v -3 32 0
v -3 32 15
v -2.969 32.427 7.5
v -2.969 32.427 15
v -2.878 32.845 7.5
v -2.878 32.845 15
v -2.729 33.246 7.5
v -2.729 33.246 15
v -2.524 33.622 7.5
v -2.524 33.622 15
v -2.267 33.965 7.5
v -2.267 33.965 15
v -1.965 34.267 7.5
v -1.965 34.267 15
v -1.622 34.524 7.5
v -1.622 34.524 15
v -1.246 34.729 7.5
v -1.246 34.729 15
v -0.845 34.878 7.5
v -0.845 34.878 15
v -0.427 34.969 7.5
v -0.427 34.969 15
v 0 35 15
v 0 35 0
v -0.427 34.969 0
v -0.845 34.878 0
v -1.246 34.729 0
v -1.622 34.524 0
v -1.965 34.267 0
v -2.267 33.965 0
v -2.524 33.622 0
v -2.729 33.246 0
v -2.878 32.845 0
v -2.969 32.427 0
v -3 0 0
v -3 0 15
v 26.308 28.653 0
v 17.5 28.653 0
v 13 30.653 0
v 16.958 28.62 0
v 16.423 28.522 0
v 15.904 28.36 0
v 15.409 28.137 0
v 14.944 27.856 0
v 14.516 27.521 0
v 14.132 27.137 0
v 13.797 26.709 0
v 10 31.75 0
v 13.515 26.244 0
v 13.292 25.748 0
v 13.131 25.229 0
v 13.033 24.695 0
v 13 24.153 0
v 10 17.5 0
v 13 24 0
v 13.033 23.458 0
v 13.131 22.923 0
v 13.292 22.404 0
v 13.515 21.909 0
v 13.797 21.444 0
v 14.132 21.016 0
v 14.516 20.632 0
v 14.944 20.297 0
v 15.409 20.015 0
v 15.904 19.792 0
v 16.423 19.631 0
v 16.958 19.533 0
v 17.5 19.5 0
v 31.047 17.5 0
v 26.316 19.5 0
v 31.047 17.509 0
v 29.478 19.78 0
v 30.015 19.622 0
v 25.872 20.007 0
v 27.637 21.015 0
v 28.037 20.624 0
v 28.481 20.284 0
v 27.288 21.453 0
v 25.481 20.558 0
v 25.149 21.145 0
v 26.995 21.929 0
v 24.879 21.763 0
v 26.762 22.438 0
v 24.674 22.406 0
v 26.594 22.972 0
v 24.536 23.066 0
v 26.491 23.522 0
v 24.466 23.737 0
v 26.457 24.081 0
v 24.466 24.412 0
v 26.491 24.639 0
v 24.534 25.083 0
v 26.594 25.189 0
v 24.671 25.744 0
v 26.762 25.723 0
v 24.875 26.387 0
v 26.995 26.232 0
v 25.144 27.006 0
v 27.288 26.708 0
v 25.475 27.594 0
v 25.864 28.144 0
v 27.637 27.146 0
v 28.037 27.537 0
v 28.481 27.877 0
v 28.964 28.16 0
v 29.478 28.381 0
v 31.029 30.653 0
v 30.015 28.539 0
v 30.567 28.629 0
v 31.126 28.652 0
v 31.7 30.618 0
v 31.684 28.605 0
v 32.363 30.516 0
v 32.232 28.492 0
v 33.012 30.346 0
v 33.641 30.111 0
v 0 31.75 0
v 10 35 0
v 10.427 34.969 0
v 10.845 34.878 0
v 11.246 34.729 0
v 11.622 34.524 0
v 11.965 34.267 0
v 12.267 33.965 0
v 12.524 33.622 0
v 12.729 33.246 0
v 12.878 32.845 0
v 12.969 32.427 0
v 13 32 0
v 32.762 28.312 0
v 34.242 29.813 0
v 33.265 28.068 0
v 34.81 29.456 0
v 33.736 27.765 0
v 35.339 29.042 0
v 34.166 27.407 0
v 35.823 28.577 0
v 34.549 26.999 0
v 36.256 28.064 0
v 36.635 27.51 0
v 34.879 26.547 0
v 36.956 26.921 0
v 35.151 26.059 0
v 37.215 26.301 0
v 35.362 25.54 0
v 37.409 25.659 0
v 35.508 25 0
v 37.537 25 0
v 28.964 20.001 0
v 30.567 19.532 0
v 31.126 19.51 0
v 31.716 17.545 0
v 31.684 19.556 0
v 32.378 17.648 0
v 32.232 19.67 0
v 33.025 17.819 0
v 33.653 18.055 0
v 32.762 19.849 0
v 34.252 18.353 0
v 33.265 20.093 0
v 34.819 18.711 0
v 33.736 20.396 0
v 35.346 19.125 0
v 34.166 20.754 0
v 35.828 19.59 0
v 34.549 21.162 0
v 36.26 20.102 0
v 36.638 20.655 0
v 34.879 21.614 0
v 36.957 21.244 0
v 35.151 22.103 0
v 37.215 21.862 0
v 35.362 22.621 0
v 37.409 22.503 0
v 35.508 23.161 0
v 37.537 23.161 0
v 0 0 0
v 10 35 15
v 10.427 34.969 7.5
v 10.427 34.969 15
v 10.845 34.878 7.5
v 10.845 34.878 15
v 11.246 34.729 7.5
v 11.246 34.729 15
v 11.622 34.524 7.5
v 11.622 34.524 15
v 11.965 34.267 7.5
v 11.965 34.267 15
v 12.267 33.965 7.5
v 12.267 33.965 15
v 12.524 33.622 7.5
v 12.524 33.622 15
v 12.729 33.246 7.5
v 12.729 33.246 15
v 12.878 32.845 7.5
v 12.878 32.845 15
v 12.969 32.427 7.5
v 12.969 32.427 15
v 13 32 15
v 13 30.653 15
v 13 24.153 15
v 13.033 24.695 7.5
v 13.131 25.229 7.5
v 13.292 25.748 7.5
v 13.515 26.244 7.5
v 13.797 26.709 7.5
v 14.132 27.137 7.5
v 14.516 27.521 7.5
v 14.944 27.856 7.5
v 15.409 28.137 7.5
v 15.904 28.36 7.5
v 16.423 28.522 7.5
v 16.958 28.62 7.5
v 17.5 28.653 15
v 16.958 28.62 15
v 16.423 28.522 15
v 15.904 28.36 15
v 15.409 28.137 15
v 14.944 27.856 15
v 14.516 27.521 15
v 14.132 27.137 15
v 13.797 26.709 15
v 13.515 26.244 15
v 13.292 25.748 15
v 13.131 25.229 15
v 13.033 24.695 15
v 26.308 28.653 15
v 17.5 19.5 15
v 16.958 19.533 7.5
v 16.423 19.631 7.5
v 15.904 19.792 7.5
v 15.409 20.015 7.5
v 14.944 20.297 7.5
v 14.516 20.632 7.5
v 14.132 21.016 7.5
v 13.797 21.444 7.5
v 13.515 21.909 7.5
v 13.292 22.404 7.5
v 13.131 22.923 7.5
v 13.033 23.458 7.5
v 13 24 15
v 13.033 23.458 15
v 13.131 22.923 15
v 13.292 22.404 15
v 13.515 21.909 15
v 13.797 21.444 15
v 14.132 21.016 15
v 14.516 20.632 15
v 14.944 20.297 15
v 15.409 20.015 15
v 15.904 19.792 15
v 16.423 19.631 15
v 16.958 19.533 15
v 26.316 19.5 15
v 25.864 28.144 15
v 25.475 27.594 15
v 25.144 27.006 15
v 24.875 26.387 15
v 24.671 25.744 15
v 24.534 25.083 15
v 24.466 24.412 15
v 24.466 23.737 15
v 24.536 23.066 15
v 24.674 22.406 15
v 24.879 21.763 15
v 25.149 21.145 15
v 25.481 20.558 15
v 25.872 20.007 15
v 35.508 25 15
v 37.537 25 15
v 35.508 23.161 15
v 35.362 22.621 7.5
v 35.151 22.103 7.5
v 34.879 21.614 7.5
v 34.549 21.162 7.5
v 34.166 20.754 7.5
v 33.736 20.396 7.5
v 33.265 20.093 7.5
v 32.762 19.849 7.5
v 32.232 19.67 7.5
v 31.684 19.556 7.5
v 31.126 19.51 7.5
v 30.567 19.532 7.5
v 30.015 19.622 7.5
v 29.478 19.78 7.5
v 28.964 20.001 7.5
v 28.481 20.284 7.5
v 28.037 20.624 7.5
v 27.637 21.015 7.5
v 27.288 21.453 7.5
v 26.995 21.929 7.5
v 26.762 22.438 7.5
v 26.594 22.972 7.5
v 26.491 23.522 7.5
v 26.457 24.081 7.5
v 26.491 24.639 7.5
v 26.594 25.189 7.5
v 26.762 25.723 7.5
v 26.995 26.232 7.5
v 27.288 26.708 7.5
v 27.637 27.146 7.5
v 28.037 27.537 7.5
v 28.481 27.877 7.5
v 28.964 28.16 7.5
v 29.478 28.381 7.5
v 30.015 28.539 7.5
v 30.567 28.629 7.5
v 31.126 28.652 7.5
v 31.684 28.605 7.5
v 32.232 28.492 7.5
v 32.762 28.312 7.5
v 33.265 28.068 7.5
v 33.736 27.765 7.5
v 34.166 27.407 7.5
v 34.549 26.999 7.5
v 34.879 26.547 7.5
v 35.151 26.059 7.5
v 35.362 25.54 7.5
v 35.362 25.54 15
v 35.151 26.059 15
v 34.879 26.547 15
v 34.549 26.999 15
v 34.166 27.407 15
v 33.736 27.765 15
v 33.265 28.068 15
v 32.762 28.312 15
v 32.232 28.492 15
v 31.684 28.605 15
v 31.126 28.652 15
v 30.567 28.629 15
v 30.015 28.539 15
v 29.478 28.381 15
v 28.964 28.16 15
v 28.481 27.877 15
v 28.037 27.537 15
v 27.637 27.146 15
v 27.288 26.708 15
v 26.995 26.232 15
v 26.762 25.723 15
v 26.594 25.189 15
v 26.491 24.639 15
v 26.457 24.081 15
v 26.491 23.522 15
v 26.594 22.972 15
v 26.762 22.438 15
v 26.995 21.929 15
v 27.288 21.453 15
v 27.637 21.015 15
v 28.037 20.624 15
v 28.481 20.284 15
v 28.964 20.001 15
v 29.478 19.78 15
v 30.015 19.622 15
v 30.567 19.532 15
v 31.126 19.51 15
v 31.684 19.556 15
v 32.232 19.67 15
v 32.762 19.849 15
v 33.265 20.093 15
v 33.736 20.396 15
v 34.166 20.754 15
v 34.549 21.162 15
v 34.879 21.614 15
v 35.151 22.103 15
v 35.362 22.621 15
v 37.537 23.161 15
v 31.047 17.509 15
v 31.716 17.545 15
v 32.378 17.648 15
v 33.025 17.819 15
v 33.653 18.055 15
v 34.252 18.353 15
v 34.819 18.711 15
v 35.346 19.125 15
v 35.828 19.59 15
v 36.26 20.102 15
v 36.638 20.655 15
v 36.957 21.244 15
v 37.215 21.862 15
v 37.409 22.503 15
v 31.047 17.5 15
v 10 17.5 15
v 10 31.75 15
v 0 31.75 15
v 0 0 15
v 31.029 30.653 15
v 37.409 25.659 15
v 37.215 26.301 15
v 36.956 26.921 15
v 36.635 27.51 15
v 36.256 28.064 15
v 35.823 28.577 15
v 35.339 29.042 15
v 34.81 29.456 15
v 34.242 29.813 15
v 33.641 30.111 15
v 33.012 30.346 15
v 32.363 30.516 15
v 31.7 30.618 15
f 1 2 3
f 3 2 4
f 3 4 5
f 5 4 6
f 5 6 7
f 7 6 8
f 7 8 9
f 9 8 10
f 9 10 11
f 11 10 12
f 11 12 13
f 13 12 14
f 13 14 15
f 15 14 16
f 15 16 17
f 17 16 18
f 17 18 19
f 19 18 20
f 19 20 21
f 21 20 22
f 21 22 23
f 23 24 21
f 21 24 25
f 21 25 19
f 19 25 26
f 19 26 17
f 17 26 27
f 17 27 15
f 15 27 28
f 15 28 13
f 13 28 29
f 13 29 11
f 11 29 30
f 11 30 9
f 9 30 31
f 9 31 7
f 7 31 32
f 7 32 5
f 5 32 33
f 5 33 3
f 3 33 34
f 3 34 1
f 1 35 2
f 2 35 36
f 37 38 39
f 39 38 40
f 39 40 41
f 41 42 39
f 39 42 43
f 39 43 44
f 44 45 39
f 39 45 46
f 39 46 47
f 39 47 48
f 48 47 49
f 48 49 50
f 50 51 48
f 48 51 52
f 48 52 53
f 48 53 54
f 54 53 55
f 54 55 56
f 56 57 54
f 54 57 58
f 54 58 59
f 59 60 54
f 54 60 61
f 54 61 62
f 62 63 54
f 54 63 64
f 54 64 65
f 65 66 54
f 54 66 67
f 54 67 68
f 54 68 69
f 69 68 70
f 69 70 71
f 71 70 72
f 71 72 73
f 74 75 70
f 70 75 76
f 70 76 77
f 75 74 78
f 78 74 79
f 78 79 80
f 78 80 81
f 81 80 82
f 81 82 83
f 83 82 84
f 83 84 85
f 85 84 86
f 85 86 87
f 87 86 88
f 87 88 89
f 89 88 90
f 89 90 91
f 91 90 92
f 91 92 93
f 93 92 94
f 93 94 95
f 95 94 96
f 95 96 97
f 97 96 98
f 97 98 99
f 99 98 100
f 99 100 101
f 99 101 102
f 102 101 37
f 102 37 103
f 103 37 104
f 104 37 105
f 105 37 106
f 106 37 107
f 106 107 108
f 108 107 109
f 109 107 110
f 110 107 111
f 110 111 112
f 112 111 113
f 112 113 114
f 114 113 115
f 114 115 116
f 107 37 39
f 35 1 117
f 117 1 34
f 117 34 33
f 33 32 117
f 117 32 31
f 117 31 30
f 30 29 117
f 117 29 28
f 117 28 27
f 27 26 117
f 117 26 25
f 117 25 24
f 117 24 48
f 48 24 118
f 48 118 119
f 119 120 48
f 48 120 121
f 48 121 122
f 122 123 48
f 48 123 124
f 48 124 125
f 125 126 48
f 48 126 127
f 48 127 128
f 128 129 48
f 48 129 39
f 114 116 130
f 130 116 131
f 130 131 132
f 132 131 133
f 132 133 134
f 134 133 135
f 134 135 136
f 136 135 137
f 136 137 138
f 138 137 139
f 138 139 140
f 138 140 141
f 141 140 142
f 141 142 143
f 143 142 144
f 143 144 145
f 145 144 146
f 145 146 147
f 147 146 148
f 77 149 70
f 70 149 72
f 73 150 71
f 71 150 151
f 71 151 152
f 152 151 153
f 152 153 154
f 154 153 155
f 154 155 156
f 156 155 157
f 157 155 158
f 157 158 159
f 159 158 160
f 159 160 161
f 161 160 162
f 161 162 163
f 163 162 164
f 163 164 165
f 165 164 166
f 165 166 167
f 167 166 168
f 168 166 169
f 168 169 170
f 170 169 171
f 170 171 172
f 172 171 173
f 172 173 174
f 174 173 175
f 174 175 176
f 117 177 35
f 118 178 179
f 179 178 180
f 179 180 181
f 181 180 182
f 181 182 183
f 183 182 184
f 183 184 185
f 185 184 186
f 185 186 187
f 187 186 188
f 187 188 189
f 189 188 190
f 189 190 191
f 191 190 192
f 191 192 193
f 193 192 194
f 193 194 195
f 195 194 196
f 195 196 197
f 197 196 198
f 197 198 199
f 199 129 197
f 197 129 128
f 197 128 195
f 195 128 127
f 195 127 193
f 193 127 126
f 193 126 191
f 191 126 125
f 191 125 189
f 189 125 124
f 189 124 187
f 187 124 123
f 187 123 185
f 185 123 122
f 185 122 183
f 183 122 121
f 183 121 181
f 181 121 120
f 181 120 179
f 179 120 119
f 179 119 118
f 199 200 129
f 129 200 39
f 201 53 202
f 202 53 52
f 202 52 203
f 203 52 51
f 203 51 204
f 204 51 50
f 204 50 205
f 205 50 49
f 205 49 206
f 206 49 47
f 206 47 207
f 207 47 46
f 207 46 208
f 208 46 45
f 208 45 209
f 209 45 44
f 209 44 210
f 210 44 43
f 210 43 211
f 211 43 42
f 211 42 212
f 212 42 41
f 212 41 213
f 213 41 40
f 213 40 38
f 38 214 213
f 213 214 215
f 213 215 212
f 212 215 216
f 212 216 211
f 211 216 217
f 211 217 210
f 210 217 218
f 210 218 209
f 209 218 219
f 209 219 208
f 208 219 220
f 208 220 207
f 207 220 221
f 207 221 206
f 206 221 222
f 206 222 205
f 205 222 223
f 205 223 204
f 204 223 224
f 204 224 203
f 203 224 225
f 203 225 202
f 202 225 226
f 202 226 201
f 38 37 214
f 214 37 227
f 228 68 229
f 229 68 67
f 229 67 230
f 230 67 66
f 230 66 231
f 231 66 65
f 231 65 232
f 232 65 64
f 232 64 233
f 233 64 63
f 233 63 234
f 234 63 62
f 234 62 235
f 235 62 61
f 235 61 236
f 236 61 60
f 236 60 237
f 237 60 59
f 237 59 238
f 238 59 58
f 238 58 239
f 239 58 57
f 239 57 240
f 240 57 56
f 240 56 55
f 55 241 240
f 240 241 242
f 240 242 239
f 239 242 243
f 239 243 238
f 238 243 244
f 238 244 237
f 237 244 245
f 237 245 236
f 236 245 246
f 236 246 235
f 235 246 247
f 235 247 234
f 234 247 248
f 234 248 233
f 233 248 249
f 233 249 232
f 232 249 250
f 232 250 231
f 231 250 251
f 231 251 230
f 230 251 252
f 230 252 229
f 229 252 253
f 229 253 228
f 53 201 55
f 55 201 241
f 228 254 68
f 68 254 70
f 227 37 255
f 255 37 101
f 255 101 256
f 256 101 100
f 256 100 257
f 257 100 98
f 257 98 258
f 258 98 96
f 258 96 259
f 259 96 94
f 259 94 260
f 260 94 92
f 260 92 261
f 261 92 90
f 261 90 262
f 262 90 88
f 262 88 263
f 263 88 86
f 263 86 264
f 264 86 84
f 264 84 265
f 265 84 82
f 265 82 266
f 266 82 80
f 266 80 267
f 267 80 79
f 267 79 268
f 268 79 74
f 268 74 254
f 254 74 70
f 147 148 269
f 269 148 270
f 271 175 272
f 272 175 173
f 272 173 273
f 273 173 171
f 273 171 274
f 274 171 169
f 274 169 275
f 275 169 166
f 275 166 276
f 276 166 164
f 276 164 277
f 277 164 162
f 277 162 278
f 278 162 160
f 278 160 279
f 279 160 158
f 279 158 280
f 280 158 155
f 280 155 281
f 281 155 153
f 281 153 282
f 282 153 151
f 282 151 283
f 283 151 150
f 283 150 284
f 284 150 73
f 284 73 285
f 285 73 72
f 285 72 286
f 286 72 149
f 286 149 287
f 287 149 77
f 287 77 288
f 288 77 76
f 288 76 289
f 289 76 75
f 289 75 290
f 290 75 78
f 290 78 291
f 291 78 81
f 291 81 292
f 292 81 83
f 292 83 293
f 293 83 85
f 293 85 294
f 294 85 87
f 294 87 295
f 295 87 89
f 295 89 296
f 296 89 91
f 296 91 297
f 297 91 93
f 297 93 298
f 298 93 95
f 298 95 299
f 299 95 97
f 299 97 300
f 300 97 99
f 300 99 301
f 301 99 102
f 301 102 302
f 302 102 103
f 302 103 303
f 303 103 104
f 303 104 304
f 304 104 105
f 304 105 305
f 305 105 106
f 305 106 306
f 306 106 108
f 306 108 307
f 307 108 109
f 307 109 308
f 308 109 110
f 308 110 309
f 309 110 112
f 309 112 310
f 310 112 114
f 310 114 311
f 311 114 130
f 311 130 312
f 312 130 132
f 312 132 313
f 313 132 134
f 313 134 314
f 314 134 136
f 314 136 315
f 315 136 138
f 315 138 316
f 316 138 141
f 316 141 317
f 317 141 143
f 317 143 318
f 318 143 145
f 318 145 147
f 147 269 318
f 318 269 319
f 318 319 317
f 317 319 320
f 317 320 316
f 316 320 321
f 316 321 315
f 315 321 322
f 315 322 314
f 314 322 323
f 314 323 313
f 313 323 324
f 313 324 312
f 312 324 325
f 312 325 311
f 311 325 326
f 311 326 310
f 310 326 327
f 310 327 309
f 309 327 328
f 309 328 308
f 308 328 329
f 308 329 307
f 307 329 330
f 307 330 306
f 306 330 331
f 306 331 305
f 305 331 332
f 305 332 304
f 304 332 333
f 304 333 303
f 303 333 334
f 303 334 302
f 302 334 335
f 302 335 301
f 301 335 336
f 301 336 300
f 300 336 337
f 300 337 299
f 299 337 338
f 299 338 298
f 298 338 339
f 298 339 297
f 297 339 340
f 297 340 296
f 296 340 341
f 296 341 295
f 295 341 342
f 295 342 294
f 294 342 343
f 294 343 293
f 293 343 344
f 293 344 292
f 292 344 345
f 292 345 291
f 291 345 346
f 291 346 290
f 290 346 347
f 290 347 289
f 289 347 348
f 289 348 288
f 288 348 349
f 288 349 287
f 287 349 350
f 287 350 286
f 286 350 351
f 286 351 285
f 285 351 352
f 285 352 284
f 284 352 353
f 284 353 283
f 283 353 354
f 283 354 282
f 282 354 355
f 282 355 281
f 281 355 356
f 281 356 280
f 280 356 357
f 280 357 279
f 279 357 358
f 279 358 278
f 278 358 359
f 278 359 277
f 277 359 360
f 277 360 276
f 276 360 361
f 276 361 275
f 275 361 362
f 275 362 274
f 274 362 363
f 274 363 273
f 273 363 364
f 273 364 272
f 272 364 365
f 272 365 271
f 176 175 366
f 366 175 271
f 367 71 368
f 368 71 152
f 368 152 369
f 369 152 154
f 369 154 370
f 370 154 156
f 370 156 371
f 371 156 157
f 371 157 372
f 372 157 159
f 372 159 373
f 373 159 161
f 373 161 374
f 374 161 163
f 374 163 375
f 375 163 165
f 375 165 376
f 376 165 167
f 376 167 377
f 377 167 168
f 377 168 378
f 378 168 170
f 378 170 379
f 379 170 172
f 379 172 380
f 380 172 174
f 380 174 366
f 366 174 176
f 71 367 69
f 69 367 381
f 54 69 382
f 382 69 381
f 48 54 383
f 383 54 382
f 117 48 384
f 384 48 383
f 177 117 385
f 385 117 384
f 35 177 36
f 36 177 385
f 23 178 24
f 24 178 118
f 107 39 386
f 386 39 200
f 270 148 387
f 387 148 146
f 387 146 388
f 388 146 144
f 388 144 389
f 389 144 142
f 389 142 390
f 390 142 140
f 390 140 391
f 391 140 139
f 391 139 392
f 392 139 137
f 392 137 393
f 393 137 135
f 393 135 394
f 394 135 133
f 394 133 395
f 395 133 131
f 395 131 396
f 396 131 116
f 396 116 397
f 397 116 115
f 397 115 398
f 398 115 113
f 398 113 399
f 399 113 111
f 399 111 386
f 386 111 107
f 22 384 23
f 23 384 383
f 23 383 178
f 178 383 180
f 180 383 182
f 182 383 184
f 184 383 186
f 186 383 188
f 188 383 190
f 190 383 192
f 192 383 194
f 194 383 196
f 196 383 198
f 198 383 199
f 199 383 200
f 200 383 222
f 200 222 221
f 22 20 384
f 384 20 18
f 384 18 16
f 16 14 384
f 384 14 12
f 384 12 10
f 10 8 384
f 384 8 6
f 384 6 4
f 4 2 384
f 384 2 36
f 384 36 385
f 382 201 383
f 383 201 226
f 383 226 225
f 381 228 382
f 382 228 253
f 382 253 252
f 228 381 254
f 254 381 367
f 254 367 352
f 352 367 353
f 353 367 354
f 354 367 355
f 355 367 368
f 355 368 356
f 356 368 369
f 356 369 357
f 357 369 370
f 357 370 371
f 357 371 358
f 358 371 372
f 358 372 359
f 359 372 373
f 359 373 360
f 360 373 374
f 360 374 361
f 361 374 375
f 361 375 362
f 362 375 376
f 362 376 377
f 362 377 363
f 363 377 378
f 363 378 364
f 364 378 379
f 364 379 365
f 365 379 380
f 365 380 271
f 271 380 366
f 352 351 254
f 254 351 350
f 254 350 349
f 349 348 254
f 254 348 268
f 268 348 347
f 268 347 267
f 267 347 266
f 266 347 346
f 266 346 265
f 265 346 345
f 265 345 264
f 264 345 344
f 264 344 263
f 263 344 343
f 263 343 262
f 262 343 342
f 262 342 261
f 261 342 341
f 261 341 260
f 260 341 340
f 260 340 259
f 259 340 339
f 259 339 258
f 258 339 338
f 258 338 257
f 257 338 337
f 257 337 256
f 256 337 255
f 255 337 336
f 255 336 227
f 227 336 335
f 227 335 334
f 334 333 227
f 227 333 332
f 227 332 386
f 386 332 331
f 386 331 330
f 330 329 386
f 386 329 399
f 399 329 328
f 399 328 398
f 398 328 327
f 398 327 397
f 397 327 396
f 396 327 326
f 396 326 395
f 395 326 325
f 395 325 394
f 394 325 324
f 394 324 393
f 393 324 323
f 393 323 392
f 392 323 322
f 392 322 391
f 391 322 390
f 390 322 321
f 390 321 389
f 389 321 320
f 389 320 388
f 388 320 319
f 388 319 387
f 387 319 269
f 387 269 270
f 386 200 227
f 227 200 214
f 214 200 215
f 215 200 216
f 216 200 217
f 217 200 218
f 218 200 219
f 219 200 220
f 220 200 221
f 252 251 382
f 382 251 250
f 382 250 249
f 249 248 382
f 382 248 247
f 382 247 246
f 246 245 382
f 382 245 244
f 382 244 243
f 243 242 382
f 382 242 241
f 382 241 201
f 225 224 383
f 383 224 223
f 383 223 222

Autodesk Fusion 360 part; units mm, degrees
sketch "Sketch1" plane through (0, 0, 0) normal (0, 0, 1) x (1, 0, 0)
  line L0 (0, 0) -> (0, 31.75)
  line L1 (0, 31.75) -> (10, 31.75)
  line L2 (10, 31.75) -> (10, 15.875)
  line L3 (10, 15.875) -> (12, 15.875)
  line L4 (0, 0) -> (-3, 0)
  line L5 (-3, 0) -> (-3, 35)
  line L6 (-3, 35) -> (13, 35)
  line L7 (13, 35) -> (13, 17.5)
  line L8 (13, 17.5) -> (10, 17.5)
  circle A0 centre (31.0292, 24.0805) radius 4.572
  circle A1 centre (31.0292, 24.0805) radius 6.572
  line L9 (13, 17.5) -> (31.0468, 17.5)
  line L10 (31.0468, 17.5) -> (31.0468, 19.5)
  line L11 (31.0468, 19.5) -> (13, 19.5)
  line L12 (13, 19.5) -> (13, 17.5)
  line L13 (31.0292, 28.6525) -> (12.2404, 28.6525)
  line L14 (12.2404, 28.6525) -> (12.2404, 30.6525)
  line L15 (12.2404, 30.6525) -> (31.0292, 30.6525)
  line L16 (31.0292, 30.6525) -> (31.0292, 28.6525)
  line L17 (38, 25) -> (24.0584, 25)
  line L18 (24.0584, 25) -> (24.0584, 23.1611)
  line L19 (24.0584, 23.1611) -> (38, 23.1611)
  line L20 (38, 23.1611) -> (38, 25)
  line L21 (38, 25) -> (24.0584, 23.1611) construction
  line L22 (24.0584, 25) -> (38, 23.1611) construction
  point P0 (31.0292, 24.0805)
  dimension "d1" = 31.75
  dimension "d2" = 10
  dimension "d3" = 15.875
  dimension "d4" = 2
  dimension "d5" = 9.144
  dimension "d6" = 2
  dimension "d11" = 2
  dimension "d12" = 2
extrude "Extrude3" add sketch "Sketch1" along normal blind 15 contours L0 L1 L2 L4 L5 L6 L7 L8 L12 L13 L14 L15 | L7 A1 L9 L10 L11 L12 | L7 A1 L13 L15 | L7 L13 L14 L15 | A1 L13 L16 | A0 A1 L16 L17 | A1 L10 L11 | A0 A1 L10 L11 L19 | A0 A1 L13 L17 | A0 A1 L17 L19 picked at (25.8467, 24.7963)
sketch "Sketch3" plane through (0, 0, 10) normal (0, 0, 1) x (-1, 0, 0)
  line L0 (-13, -17.5) -> (-13, -35)
  line L1 (-13, -35) -> (3, -35)
  line L2 (3, -35) -> (3, 0)
  line L3 (3, 0) -> (0, 0)
  line L4 (0, 0) -> (0, -31.75)
  line L5 (0, -31.75) -> (-10, -31.75)
  line L6 (-10, -31.75) -> (-10, -17.5)
  line L7 (-10, -17.5) -> (-13, -17.5)
  circle A0 centre (-17.7478, -24.1114) radius 4.572
sketch "Sketch4" plane through (0, 0, 10) normal (0, 0, 1) x (-1, 0, 0)
  line L0 (-13, -17.5) -> (-13, -35)
  line L1 (-13, -35) -> (3, -35)
  line L2 (3, -35) -> (3, 0)
  line L3 (3, 0) -> (0, 0)
  line L4 (0, 0) -> (0, -31.75)
  line L5 (0, -31.75) -> (-10, -31.75)
  line L6 (-10, -31.75) -> (-10, -17.5)
  line L7 (-10, -17.5) -> (-13, -17.5)
  circle A0 centre (-17.7478, -24.1114) radius 4.572
  circle A1 centre (-17.7478, -24.1114) radius 6.572
  line L8 (-17.5, -22.5) -> (-17.5, -16.7493)
fillet "Fillet1" radius 4.5 2 edges at (13, 19.5, 7.5) (13, 28.6525, 7.5)
fillet "Fillet2" radius 3 2 edges at (13, 35, 7.5) (-3, 35, 7.5)
